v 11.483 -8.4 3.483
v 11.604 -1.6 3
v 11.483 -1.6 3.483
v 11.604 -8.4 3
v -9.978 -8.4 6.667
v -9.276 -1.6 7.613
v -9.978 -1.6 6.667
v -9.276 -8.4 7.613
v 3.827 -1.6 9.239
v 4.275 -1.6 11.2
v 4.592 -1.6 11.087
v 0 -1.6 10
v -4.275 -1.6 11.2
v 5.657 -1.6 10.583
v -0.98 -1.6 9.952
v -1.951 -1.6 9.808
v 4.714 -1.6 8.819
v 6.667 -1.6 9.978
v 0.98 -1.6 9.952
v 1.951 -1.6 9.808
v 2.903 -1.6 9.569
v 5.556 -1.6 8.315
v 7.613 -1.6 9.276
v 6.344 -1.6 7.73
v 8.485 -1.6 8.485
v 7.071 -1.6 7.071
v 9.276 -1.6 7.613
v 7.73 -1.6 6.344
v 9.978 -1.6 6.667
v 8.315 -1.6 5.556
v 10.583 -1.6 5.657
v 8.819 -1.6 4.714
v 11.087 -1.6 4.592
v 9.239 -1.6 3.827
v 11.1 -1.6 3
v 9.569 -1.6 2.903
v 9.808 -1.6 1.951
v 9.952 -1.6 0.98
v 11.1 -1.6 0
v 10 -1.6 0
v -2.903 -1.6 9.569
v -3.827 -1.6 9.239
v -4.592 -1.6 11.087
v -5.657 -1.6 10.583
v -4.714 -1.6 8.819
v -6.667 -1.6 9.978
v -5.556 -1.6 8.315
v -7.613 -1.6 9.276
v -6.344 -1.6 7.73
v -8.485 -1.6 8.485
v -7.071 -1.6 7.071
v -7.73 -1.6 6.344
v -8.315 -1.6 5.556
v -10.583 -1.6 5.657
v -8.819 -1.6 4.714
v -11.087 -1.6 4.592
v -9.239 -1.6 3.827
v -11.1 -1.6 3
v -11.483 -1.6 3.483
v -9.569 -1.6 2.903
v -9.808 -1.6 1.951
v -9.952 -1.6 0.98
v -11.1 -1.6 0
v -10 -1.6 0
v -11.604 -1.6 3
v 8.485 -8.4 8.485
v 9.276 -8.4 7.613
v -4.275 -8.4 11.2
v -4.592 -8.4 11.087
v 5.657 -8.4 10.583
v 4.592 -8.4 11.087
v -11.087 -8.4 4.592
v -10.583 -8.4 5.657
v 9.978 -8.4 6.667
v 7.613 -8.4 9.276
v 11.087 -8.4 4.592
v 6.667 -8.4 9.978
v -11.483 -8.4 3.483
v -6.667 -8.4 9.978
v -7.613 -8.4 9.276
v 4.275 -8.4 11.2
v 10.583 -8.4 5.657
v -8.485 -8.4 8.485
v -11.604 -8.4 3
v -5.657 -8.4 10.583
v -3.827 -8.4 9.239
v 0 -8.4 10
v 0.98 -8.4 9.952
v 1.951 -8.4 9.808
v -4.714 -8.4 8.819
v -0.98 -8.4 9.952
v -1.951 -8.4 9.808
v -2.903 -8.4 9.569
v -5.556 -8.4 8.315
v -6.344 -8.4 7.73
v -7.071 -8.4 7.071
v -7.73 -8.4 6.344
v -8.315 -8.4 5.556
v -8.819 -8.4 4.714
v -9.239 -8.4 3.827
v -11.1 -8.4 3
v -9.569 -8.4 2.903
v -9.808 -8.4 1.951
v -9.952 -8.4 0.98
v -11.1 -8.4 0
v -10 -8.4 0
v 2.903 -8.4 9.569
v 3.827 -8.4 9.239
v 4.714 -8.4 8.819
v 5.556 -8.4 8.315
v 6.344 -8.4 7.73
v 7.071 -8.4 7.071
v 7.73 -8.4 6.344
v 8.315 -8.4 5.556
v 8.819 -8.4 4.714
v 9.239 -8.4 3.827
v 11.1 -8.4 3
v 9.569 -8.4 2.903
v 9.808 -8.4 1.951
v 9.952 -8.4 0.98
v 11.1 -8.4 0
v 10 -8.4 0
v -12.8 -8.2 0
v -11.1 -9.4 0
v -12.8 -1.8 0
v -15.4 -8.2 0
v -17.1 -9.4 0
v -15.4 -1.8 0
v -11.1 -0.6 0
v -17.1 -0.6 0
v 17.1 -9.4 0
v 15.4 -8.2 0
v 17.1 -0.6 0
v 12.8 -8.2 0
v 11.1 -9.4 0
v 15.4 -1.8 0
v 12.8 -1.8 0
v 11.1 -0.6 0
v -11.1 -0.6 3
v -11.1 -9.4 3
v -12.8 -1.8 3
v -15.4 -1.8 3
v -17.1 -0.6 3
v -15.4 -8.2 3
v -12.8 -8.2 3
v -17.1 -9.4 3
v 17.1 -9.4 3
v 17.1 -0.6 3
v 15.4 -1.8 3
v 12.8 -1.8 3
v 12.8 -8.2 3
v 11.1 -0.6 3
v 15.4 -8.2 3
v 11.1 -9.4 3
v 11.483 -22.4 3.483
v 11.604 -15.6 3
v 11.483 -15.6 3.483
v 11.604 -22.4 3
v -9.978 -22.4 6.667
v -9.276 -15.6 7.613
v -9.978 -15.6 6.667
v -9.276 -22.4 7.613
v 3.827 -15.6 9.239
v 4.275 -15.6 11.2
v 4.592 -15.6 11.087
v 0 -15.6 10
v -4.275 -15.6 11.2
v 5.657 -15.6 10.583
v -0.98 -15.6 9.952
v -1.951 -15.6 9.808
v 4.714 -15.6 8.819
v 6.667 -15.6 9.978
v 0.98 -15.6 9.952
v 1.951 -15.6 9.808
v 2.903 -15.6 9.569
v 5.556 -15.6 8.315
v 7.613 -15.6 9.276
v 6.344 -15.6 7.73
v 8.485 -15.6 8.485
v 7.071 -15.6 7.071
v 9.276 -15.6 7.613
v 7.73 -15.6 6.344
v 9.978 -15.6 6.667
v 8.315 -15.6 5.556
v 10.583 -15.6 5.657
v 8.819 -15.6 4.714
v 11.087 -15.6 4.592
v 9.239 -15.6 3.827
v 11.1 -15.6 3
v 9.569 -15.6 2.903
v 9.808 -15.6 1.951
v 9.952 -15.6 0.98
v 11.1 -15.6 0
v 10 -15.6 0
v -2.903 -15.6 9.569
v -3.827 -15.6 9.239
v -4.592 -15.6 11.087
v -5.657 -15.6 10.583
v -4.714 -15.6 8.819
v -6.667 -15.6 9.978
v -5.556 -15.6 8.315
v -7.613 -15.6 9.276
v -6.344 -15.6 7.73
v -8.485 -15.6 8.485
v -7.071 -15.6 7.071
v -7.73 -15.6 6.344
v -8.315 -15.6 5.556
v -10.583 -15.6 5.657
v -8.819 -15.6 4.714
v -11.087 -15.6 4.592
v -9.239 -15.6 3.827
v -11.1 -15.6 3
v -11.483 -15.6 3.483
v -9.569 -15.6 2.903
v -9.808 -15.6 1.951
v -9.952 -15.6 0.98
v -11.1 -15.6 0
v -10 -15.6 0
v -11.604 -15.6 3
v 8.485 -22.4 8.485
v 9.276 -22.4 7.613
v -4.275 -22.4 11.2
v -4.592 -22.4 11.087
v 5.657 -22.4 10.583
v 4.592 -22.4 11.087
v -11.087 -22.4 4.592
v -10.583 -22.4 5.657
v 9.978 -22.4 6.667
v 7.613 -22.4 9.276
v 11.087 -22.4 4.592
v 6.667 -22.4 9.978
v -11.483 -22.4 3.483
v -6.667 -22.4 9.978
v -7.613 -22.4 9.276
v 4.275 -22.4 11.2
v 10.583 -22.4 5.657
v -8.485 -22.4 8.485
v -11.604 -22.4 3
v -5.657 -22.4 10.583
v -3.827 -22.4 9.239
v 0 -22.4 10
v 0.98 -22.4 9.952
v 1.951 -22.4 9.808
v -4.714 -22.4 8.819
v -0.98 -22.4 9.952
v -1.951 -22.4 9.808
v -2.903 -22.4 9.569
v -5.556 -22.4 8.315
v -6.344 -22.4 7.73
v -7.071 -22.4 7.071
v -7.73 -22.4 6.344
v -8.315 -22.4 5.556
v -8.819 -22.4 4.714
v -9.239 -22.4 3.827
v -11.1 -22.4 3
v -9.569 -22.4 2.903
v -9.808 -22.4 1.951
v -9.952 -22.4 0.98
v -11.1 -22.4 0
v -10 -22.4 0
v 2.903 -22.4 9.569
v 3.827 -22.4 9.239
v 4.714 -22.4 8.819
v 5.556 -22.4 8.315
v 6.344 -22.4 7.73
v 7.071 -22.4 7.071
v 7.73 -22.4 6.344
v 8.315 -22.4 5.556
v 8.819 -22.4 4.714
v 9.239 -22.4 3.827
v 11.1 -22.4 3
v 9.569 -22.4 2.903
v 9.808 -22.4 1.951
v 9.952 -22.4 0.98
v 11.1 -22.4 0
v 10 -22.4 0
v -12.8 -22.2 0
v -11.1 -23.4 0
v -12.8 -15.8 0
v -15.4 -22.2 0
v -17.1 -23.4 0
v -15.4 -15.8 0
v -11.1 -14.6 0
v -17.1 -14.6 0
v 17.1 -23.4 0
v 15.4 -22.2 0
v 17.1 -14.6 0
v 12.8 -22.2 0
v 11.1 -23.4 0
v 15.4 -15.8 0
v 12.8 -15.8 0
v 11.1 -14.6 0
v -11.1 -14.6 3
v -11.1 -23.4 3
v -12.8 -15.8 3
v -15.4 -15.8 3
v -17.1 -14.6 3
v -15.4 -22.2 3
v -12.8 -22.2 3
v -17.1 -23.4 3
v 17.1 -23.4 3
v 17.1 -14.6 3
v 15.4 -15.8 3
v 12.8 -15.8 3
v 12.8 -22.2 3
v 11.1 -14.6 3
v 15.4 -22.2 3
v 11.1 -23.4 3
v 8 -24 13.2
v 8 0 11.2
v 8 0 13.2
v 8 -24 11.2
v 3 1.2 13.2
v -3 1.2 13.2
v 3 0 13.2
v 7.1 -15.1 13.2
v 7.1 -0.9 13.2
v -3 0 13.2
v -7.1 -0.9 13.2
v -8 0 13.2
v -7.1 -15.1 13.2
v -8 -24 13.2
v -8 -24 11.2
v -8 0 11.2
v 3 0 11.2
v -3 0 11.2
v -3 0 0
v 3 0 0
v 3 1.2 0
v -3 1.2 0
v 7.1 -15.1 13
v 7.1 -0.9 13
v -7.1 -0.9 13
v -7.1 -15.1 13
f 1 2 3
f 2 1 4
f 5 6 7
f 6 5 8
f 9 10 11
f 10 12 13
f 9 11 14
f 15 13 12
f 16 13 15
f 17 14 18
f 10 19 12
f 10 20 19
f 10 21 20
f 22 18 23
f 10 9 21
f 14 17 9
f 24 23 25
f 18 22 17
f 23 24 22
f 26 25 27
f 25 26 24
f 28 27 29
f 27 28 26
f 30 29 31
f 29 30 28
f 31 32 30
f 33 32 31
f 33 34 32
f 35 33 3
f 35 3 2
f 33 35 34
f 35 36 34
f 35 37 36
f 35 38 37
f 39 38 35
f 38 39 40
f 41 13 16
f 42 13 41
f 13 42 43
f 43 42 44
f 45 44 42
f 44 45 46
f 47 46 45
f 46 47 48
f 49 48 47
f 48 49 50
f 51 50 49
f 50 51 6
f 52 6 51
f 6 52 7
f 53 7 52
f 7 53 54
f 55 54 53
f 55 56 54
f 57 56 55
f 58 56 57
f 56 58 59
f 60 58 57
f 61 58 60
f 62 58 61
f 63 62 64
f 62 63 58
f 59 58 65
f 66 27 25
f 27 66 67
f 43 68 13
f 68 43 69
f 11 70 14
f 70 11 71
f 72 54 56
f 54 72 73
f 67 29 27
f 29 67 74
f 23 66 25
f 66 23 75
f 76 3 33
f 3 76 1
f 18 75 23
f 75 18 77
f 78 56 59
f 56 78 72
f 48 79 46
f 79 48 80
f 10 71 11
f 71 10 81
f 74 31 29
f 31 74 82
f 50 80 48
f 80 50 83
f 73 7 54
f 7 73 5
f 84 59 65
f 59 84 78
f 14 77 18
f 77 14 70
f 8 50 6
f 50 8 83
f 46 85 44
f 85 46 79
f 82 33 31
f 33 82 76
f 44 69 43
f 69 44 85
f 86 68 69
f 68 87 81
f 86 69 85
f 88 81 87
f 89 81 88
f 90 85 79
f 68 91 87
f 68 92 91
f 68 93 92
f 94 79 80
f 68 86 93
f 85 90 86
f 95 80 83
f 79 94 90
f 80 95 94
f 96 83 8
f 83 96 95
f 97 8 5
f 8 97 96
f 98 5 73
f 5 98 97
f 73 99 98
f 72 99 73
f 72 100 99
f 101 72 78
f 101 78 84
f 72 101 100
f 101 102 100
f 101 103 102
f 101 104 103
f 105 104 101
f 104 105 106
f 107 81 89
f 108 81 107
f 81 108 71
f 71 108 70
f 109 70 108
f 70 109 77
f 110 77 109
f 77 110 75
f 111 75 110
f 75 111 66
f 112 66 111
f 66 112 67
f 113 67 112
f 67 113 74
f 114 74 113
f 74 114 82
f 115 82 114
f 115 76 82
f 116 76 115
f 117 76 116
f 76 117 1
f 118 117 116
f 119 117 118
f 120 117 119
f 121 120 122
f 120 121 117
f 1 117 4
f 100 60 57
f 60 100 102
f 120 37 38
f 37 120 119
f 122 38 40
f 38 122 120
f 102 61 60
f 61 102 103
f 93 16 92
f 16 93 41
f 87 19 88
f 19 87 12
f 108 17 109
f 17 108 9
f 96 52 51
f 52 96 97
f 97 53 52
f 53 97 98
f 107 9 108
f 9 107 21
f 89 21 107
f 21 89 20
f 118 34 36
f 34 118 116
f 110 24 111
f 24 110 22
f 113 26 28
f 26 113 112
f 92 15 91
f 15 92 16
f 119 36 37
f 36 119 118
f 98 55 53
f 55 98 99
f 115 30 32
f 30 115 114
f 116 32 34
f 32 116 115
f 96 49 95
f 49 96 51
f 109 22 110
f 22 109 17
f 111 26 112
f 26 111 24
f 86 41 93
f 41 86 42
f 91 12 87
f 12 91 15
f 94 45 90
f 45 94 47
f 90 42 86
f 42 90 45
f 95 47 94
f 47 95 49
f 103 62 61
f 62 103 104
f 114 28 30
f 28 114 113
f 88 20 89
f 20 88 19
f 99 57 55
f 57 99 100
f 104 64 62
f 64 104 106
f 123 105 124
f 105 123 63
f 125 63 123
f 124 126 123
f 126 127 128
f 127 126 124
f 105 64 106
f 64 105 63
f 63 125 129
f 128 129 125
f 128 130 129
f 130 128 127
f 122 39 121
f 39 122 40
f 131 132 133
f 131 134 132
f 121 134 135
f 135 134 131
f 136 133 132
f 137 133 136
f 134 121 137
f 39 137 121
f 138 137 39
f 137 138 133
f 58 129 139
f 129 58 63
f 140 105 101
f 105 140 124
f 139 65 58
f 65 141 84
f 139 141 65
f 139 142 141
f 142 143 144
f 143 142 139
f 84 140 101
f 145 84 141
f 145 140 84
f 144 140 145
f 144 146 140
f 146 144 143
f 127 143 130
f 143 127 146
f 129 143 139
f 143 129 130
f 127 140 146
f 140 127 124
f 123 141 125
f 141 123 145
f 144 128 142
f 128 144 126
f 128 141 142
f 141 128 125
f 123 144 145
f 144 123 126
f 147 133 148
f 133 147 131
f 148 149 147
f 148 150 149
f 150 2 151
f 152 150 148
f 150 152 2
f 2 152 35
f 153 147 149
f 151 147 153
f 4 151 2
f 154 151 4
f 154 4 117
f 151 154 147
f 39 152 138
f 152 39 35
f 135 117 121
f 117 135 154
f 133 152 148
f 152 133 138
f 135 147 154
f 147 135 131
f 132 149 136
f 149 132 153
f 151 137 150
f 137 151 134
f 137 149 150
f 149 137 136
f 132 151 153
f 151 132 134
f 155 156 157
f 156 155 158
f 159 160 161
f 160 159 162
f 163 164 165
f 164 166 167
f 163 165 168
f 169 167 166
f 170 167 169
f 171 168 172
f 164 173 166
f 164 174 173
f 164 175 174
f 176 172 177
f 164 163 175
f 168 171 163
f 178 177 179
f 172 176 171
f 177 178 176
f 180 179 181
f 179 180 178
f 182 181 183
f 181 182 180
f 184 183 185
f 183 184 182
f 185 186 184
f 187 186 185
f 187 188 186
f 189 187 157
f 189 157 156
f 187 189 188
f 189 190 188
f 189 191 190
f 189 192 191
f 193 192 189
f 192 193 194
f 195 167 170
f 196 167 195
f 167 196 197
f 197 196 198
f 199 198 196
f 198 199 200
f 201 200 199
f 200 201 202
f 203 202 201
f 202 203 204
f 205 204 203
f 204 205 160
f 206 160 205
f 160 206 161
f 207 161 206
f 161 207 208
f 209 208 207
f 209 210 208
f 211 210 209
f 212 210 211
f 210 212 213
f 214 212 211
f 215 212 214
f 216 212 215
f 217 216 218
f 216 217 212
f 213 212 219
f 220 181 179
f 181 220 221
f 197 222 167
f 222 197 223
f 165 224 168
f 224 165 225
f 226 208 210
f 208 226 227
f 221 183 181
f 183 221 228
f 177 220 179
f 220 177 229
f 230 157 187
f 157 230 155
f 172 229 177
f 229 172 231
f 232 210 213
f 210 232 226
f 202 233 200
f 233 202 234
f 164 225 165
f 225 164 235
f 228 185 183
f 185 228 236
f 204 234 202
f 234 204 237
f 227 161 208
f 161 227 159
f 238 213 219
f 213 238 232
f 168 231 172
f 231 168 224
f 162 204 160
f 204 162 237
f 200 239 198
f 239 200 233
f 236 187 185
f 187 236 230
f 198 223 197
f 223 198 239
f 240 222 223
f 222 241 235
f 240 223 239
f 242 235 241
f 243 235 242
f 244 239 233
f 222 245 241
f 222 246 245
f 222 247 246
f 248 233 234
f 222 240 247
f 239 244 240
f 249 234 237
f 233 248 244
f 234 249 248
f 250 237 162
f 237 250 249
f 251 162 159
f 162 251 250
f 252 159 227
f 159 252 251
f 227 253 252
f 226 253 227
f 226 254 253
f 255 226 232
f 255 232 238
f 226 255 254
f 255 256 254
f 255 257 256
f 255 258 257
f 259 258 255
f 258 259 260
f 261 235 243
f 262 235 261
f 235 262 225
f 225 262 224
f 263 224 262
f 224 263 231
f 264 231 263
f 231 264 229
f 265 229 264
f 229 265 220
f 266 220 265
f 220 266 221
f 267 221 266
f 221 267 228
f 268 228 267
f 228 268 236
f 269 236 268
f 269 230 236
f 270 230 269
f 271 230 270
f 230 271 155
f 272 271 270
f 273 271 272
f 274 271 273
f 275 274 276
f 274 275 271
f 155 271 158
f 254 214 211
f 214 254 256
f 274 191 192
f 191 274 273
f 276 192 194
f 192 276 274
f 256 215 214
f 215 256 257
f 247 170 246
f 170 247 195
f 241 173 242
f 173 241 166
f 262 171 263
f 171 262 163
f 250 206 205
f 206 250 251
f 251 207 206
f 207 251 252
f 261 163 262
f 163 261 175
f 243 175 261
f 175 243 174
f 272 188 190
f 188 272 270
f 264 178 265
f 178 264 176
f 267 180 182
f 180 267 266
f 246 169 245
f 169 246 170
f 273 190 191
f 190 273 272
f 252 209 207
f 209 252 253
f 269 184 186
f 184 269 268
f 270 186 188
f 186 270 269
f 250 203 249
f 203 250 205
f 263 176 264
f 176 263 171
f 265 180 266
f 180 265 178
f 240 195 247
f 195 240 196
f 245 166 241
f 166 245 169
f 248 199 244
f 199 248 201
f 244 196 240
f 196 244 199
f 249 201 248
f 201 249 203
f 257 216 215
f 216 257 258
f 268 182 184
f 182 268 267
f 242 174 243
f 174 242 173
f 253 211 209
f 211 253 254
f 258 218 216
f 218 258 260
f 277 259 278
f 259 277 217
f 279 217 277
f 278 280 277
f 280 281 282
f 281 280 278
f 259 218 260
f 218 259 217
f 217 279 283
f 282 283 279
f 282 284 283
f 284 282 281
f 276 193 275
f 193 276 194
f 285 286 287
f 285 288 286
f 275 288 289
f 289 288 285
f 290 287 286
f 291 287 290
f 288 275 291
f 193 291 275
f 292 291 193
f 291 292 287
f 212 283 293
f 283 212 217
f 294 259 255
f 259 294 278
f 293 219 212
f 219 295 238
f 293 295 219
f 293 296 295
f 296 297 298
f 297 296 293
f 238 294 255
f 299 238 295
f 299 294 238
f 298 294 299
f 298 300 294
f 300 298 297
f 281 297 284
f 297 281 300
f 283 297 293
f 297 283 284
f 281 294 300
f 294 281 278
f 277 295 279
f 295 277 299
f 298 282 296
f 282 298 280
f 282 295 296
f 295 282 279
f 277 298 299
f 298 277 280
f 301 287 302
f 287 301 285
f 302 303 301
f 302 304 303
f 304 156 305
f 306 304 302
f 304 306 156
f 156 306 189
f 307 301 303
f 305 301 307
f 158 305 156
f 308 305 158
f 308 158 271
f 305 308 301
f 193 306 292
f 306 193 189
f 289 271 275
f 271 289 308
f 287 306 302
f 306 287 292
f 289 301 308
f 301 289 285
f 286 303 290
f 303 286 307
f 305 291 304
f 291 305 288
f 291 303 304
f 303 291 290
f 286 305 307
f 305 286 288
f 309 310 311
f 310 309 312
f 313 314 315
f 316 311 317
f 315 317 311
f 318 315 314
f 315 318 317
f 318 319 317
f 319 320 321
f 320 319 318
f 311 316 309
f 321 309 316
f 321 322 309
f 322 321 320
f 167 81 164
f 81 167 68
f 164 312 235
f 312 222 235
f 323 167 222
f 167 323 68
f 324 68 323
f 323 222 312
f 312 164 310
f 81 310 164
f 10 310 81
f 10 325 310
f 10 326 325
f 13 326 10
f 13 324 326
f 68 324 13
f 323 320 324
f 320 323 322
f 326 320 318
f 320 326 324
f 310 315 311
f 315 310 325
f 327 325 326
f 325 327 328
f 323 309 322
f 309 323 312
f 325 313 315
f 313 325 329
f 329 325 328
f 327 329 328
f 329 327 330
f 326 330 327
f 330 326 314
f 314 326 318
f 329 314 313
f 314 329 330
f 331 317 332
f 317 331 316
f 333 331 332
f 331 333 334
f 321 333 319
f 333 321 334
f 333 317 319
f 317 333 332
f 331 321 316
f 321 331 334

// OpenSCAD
// ReachSense six-finger wrap v1. Units: mm. Experimental, physically unverified.
// R: +X lateral, +Y distal (towards fingertip), +Z dorsal.
// The marker deck's distal edge and the stop's inner contact face are both Y=0.
// The outer stop is Y=1.2; it is NOT the anatomical reference.
// The stop constrains Y only. Anatomical X/Z and placement repeatability are unverified.
$fn = 64;
part = "holder"; // "holder" or "strap"
marker_id = 31;
finger_diameter_mm = 20;
marker_edge_mm = 10;
quiet_zone_mm = 2;
frame_mm = 1;
wall_mm = 2;
stop_wall_mm = 1.2;
strap_width_mm = 6;
strap_length_mm = 90;

r = finger_diameter_mm/2;
tile = marker_edge_mm + 2*quiet_zone_mm;
deck_width = tile + 2*frame_mm;
length = tile + 2*frame_mm + 8;
deck_bottom = r + wall_mm - 0.8;
deck_top = deck_bottom + 2;
pocket_depth = 0.2;
marker_y = -(frame_mm + quiet_zone_mm + marker_edge_mm/2);
support_y = [-5, -length+5];

assert(finger_diameter_mm >= 12 && finger_diameter_mm <= 26, "Choose a 12–26 mm candidate opening");
assert(marker_edge_mm >= 8 && marker_edge_mm <= 16, "Choose an 8–16 mm black edge");
assert(quiet_zone_mm >= 2, "Keep the full white quiet zone");
assert(marker_id >= 0 && marker_id < 100, "DICT_4X4_100 ID required");

module support(y) {
    translate([0,y,0]) intersection() {
        difference() {
            rotate([90,0,0]) cylinder(r=r+wall_mm,h=6.8,center=true);
            rotate([90,0,0]) cylinder(r=r,h=8.8,center=true);
        }
        translate([-r-wall_mm-1,-4.4,0]) cube([2*(r+wall_mm+1),8.8,r+wall_mm+1]);
    }
    // Through-slots for 6 mm hook-and-loop strap or the optional TPU strip.
    for(sign=[-1,1]) translate([sign*(r+wall_mm+2.1),y,1.5]) difference() {
        cube([6,8.8,3],center=true);
        cube([2.6,6.4,5],center=true);
    }
}

module holder() {
    difference() {
        union() {
            for(y=support_y) support(y);
            translate([-deck_width/2,-length,deck_bottom]) cube([deck_width,length,2]);
            // Front stop contacts the fingertip at its INNER face Y=0.
            // Deck ends at Y=0 while this wall extends beyond it, preserving the reference.
            translate([-3,0,0]) cube([6,stop_wall_mm,deck_top]);
        }
        // Shallow square registration recess. Keep all 2 mm white margins visible.
        translate([-tile/2-0.1,marker_y-tile/2-0.1,deck_top-pocket_depth])
            cube([tile+0.2,tile+0.2,pocket_depth+1]);
        // Identity comes from the attached printed marker. Geometry is shared by size.
    }
}

module strap() {
    // TPU-only ladder strip. Its ends need a return loop/fastener or hook-and-loop tape.
    // This is not an articulated hard-plastic chain or a validated locking buckle.
    union() {
        translate([-strap_length_mm/2,-strap_width_mm/2,0])
            cube([strap_length_mm,strap_width_mm,0.8]);
        for(x=[-strap_length_mm/2+3:4:strap_length_mm/2-3])
            translate([x-0.7,-strap_width_mm/2,0.8]) cube([1.4,strap_width_mm,0.5]);
    }
}

if(part == "strap") strap(); else holder();
echo(reference_plane_y_mm=0, outer_stop_y_mm=stop_wall_mm);
echo(marker_center_R_mm=[0,marker_y,deck_top-pocket_depth+0.15]);
echo(marker_center_to_distal_deck_edge_mm=-marker_y);
